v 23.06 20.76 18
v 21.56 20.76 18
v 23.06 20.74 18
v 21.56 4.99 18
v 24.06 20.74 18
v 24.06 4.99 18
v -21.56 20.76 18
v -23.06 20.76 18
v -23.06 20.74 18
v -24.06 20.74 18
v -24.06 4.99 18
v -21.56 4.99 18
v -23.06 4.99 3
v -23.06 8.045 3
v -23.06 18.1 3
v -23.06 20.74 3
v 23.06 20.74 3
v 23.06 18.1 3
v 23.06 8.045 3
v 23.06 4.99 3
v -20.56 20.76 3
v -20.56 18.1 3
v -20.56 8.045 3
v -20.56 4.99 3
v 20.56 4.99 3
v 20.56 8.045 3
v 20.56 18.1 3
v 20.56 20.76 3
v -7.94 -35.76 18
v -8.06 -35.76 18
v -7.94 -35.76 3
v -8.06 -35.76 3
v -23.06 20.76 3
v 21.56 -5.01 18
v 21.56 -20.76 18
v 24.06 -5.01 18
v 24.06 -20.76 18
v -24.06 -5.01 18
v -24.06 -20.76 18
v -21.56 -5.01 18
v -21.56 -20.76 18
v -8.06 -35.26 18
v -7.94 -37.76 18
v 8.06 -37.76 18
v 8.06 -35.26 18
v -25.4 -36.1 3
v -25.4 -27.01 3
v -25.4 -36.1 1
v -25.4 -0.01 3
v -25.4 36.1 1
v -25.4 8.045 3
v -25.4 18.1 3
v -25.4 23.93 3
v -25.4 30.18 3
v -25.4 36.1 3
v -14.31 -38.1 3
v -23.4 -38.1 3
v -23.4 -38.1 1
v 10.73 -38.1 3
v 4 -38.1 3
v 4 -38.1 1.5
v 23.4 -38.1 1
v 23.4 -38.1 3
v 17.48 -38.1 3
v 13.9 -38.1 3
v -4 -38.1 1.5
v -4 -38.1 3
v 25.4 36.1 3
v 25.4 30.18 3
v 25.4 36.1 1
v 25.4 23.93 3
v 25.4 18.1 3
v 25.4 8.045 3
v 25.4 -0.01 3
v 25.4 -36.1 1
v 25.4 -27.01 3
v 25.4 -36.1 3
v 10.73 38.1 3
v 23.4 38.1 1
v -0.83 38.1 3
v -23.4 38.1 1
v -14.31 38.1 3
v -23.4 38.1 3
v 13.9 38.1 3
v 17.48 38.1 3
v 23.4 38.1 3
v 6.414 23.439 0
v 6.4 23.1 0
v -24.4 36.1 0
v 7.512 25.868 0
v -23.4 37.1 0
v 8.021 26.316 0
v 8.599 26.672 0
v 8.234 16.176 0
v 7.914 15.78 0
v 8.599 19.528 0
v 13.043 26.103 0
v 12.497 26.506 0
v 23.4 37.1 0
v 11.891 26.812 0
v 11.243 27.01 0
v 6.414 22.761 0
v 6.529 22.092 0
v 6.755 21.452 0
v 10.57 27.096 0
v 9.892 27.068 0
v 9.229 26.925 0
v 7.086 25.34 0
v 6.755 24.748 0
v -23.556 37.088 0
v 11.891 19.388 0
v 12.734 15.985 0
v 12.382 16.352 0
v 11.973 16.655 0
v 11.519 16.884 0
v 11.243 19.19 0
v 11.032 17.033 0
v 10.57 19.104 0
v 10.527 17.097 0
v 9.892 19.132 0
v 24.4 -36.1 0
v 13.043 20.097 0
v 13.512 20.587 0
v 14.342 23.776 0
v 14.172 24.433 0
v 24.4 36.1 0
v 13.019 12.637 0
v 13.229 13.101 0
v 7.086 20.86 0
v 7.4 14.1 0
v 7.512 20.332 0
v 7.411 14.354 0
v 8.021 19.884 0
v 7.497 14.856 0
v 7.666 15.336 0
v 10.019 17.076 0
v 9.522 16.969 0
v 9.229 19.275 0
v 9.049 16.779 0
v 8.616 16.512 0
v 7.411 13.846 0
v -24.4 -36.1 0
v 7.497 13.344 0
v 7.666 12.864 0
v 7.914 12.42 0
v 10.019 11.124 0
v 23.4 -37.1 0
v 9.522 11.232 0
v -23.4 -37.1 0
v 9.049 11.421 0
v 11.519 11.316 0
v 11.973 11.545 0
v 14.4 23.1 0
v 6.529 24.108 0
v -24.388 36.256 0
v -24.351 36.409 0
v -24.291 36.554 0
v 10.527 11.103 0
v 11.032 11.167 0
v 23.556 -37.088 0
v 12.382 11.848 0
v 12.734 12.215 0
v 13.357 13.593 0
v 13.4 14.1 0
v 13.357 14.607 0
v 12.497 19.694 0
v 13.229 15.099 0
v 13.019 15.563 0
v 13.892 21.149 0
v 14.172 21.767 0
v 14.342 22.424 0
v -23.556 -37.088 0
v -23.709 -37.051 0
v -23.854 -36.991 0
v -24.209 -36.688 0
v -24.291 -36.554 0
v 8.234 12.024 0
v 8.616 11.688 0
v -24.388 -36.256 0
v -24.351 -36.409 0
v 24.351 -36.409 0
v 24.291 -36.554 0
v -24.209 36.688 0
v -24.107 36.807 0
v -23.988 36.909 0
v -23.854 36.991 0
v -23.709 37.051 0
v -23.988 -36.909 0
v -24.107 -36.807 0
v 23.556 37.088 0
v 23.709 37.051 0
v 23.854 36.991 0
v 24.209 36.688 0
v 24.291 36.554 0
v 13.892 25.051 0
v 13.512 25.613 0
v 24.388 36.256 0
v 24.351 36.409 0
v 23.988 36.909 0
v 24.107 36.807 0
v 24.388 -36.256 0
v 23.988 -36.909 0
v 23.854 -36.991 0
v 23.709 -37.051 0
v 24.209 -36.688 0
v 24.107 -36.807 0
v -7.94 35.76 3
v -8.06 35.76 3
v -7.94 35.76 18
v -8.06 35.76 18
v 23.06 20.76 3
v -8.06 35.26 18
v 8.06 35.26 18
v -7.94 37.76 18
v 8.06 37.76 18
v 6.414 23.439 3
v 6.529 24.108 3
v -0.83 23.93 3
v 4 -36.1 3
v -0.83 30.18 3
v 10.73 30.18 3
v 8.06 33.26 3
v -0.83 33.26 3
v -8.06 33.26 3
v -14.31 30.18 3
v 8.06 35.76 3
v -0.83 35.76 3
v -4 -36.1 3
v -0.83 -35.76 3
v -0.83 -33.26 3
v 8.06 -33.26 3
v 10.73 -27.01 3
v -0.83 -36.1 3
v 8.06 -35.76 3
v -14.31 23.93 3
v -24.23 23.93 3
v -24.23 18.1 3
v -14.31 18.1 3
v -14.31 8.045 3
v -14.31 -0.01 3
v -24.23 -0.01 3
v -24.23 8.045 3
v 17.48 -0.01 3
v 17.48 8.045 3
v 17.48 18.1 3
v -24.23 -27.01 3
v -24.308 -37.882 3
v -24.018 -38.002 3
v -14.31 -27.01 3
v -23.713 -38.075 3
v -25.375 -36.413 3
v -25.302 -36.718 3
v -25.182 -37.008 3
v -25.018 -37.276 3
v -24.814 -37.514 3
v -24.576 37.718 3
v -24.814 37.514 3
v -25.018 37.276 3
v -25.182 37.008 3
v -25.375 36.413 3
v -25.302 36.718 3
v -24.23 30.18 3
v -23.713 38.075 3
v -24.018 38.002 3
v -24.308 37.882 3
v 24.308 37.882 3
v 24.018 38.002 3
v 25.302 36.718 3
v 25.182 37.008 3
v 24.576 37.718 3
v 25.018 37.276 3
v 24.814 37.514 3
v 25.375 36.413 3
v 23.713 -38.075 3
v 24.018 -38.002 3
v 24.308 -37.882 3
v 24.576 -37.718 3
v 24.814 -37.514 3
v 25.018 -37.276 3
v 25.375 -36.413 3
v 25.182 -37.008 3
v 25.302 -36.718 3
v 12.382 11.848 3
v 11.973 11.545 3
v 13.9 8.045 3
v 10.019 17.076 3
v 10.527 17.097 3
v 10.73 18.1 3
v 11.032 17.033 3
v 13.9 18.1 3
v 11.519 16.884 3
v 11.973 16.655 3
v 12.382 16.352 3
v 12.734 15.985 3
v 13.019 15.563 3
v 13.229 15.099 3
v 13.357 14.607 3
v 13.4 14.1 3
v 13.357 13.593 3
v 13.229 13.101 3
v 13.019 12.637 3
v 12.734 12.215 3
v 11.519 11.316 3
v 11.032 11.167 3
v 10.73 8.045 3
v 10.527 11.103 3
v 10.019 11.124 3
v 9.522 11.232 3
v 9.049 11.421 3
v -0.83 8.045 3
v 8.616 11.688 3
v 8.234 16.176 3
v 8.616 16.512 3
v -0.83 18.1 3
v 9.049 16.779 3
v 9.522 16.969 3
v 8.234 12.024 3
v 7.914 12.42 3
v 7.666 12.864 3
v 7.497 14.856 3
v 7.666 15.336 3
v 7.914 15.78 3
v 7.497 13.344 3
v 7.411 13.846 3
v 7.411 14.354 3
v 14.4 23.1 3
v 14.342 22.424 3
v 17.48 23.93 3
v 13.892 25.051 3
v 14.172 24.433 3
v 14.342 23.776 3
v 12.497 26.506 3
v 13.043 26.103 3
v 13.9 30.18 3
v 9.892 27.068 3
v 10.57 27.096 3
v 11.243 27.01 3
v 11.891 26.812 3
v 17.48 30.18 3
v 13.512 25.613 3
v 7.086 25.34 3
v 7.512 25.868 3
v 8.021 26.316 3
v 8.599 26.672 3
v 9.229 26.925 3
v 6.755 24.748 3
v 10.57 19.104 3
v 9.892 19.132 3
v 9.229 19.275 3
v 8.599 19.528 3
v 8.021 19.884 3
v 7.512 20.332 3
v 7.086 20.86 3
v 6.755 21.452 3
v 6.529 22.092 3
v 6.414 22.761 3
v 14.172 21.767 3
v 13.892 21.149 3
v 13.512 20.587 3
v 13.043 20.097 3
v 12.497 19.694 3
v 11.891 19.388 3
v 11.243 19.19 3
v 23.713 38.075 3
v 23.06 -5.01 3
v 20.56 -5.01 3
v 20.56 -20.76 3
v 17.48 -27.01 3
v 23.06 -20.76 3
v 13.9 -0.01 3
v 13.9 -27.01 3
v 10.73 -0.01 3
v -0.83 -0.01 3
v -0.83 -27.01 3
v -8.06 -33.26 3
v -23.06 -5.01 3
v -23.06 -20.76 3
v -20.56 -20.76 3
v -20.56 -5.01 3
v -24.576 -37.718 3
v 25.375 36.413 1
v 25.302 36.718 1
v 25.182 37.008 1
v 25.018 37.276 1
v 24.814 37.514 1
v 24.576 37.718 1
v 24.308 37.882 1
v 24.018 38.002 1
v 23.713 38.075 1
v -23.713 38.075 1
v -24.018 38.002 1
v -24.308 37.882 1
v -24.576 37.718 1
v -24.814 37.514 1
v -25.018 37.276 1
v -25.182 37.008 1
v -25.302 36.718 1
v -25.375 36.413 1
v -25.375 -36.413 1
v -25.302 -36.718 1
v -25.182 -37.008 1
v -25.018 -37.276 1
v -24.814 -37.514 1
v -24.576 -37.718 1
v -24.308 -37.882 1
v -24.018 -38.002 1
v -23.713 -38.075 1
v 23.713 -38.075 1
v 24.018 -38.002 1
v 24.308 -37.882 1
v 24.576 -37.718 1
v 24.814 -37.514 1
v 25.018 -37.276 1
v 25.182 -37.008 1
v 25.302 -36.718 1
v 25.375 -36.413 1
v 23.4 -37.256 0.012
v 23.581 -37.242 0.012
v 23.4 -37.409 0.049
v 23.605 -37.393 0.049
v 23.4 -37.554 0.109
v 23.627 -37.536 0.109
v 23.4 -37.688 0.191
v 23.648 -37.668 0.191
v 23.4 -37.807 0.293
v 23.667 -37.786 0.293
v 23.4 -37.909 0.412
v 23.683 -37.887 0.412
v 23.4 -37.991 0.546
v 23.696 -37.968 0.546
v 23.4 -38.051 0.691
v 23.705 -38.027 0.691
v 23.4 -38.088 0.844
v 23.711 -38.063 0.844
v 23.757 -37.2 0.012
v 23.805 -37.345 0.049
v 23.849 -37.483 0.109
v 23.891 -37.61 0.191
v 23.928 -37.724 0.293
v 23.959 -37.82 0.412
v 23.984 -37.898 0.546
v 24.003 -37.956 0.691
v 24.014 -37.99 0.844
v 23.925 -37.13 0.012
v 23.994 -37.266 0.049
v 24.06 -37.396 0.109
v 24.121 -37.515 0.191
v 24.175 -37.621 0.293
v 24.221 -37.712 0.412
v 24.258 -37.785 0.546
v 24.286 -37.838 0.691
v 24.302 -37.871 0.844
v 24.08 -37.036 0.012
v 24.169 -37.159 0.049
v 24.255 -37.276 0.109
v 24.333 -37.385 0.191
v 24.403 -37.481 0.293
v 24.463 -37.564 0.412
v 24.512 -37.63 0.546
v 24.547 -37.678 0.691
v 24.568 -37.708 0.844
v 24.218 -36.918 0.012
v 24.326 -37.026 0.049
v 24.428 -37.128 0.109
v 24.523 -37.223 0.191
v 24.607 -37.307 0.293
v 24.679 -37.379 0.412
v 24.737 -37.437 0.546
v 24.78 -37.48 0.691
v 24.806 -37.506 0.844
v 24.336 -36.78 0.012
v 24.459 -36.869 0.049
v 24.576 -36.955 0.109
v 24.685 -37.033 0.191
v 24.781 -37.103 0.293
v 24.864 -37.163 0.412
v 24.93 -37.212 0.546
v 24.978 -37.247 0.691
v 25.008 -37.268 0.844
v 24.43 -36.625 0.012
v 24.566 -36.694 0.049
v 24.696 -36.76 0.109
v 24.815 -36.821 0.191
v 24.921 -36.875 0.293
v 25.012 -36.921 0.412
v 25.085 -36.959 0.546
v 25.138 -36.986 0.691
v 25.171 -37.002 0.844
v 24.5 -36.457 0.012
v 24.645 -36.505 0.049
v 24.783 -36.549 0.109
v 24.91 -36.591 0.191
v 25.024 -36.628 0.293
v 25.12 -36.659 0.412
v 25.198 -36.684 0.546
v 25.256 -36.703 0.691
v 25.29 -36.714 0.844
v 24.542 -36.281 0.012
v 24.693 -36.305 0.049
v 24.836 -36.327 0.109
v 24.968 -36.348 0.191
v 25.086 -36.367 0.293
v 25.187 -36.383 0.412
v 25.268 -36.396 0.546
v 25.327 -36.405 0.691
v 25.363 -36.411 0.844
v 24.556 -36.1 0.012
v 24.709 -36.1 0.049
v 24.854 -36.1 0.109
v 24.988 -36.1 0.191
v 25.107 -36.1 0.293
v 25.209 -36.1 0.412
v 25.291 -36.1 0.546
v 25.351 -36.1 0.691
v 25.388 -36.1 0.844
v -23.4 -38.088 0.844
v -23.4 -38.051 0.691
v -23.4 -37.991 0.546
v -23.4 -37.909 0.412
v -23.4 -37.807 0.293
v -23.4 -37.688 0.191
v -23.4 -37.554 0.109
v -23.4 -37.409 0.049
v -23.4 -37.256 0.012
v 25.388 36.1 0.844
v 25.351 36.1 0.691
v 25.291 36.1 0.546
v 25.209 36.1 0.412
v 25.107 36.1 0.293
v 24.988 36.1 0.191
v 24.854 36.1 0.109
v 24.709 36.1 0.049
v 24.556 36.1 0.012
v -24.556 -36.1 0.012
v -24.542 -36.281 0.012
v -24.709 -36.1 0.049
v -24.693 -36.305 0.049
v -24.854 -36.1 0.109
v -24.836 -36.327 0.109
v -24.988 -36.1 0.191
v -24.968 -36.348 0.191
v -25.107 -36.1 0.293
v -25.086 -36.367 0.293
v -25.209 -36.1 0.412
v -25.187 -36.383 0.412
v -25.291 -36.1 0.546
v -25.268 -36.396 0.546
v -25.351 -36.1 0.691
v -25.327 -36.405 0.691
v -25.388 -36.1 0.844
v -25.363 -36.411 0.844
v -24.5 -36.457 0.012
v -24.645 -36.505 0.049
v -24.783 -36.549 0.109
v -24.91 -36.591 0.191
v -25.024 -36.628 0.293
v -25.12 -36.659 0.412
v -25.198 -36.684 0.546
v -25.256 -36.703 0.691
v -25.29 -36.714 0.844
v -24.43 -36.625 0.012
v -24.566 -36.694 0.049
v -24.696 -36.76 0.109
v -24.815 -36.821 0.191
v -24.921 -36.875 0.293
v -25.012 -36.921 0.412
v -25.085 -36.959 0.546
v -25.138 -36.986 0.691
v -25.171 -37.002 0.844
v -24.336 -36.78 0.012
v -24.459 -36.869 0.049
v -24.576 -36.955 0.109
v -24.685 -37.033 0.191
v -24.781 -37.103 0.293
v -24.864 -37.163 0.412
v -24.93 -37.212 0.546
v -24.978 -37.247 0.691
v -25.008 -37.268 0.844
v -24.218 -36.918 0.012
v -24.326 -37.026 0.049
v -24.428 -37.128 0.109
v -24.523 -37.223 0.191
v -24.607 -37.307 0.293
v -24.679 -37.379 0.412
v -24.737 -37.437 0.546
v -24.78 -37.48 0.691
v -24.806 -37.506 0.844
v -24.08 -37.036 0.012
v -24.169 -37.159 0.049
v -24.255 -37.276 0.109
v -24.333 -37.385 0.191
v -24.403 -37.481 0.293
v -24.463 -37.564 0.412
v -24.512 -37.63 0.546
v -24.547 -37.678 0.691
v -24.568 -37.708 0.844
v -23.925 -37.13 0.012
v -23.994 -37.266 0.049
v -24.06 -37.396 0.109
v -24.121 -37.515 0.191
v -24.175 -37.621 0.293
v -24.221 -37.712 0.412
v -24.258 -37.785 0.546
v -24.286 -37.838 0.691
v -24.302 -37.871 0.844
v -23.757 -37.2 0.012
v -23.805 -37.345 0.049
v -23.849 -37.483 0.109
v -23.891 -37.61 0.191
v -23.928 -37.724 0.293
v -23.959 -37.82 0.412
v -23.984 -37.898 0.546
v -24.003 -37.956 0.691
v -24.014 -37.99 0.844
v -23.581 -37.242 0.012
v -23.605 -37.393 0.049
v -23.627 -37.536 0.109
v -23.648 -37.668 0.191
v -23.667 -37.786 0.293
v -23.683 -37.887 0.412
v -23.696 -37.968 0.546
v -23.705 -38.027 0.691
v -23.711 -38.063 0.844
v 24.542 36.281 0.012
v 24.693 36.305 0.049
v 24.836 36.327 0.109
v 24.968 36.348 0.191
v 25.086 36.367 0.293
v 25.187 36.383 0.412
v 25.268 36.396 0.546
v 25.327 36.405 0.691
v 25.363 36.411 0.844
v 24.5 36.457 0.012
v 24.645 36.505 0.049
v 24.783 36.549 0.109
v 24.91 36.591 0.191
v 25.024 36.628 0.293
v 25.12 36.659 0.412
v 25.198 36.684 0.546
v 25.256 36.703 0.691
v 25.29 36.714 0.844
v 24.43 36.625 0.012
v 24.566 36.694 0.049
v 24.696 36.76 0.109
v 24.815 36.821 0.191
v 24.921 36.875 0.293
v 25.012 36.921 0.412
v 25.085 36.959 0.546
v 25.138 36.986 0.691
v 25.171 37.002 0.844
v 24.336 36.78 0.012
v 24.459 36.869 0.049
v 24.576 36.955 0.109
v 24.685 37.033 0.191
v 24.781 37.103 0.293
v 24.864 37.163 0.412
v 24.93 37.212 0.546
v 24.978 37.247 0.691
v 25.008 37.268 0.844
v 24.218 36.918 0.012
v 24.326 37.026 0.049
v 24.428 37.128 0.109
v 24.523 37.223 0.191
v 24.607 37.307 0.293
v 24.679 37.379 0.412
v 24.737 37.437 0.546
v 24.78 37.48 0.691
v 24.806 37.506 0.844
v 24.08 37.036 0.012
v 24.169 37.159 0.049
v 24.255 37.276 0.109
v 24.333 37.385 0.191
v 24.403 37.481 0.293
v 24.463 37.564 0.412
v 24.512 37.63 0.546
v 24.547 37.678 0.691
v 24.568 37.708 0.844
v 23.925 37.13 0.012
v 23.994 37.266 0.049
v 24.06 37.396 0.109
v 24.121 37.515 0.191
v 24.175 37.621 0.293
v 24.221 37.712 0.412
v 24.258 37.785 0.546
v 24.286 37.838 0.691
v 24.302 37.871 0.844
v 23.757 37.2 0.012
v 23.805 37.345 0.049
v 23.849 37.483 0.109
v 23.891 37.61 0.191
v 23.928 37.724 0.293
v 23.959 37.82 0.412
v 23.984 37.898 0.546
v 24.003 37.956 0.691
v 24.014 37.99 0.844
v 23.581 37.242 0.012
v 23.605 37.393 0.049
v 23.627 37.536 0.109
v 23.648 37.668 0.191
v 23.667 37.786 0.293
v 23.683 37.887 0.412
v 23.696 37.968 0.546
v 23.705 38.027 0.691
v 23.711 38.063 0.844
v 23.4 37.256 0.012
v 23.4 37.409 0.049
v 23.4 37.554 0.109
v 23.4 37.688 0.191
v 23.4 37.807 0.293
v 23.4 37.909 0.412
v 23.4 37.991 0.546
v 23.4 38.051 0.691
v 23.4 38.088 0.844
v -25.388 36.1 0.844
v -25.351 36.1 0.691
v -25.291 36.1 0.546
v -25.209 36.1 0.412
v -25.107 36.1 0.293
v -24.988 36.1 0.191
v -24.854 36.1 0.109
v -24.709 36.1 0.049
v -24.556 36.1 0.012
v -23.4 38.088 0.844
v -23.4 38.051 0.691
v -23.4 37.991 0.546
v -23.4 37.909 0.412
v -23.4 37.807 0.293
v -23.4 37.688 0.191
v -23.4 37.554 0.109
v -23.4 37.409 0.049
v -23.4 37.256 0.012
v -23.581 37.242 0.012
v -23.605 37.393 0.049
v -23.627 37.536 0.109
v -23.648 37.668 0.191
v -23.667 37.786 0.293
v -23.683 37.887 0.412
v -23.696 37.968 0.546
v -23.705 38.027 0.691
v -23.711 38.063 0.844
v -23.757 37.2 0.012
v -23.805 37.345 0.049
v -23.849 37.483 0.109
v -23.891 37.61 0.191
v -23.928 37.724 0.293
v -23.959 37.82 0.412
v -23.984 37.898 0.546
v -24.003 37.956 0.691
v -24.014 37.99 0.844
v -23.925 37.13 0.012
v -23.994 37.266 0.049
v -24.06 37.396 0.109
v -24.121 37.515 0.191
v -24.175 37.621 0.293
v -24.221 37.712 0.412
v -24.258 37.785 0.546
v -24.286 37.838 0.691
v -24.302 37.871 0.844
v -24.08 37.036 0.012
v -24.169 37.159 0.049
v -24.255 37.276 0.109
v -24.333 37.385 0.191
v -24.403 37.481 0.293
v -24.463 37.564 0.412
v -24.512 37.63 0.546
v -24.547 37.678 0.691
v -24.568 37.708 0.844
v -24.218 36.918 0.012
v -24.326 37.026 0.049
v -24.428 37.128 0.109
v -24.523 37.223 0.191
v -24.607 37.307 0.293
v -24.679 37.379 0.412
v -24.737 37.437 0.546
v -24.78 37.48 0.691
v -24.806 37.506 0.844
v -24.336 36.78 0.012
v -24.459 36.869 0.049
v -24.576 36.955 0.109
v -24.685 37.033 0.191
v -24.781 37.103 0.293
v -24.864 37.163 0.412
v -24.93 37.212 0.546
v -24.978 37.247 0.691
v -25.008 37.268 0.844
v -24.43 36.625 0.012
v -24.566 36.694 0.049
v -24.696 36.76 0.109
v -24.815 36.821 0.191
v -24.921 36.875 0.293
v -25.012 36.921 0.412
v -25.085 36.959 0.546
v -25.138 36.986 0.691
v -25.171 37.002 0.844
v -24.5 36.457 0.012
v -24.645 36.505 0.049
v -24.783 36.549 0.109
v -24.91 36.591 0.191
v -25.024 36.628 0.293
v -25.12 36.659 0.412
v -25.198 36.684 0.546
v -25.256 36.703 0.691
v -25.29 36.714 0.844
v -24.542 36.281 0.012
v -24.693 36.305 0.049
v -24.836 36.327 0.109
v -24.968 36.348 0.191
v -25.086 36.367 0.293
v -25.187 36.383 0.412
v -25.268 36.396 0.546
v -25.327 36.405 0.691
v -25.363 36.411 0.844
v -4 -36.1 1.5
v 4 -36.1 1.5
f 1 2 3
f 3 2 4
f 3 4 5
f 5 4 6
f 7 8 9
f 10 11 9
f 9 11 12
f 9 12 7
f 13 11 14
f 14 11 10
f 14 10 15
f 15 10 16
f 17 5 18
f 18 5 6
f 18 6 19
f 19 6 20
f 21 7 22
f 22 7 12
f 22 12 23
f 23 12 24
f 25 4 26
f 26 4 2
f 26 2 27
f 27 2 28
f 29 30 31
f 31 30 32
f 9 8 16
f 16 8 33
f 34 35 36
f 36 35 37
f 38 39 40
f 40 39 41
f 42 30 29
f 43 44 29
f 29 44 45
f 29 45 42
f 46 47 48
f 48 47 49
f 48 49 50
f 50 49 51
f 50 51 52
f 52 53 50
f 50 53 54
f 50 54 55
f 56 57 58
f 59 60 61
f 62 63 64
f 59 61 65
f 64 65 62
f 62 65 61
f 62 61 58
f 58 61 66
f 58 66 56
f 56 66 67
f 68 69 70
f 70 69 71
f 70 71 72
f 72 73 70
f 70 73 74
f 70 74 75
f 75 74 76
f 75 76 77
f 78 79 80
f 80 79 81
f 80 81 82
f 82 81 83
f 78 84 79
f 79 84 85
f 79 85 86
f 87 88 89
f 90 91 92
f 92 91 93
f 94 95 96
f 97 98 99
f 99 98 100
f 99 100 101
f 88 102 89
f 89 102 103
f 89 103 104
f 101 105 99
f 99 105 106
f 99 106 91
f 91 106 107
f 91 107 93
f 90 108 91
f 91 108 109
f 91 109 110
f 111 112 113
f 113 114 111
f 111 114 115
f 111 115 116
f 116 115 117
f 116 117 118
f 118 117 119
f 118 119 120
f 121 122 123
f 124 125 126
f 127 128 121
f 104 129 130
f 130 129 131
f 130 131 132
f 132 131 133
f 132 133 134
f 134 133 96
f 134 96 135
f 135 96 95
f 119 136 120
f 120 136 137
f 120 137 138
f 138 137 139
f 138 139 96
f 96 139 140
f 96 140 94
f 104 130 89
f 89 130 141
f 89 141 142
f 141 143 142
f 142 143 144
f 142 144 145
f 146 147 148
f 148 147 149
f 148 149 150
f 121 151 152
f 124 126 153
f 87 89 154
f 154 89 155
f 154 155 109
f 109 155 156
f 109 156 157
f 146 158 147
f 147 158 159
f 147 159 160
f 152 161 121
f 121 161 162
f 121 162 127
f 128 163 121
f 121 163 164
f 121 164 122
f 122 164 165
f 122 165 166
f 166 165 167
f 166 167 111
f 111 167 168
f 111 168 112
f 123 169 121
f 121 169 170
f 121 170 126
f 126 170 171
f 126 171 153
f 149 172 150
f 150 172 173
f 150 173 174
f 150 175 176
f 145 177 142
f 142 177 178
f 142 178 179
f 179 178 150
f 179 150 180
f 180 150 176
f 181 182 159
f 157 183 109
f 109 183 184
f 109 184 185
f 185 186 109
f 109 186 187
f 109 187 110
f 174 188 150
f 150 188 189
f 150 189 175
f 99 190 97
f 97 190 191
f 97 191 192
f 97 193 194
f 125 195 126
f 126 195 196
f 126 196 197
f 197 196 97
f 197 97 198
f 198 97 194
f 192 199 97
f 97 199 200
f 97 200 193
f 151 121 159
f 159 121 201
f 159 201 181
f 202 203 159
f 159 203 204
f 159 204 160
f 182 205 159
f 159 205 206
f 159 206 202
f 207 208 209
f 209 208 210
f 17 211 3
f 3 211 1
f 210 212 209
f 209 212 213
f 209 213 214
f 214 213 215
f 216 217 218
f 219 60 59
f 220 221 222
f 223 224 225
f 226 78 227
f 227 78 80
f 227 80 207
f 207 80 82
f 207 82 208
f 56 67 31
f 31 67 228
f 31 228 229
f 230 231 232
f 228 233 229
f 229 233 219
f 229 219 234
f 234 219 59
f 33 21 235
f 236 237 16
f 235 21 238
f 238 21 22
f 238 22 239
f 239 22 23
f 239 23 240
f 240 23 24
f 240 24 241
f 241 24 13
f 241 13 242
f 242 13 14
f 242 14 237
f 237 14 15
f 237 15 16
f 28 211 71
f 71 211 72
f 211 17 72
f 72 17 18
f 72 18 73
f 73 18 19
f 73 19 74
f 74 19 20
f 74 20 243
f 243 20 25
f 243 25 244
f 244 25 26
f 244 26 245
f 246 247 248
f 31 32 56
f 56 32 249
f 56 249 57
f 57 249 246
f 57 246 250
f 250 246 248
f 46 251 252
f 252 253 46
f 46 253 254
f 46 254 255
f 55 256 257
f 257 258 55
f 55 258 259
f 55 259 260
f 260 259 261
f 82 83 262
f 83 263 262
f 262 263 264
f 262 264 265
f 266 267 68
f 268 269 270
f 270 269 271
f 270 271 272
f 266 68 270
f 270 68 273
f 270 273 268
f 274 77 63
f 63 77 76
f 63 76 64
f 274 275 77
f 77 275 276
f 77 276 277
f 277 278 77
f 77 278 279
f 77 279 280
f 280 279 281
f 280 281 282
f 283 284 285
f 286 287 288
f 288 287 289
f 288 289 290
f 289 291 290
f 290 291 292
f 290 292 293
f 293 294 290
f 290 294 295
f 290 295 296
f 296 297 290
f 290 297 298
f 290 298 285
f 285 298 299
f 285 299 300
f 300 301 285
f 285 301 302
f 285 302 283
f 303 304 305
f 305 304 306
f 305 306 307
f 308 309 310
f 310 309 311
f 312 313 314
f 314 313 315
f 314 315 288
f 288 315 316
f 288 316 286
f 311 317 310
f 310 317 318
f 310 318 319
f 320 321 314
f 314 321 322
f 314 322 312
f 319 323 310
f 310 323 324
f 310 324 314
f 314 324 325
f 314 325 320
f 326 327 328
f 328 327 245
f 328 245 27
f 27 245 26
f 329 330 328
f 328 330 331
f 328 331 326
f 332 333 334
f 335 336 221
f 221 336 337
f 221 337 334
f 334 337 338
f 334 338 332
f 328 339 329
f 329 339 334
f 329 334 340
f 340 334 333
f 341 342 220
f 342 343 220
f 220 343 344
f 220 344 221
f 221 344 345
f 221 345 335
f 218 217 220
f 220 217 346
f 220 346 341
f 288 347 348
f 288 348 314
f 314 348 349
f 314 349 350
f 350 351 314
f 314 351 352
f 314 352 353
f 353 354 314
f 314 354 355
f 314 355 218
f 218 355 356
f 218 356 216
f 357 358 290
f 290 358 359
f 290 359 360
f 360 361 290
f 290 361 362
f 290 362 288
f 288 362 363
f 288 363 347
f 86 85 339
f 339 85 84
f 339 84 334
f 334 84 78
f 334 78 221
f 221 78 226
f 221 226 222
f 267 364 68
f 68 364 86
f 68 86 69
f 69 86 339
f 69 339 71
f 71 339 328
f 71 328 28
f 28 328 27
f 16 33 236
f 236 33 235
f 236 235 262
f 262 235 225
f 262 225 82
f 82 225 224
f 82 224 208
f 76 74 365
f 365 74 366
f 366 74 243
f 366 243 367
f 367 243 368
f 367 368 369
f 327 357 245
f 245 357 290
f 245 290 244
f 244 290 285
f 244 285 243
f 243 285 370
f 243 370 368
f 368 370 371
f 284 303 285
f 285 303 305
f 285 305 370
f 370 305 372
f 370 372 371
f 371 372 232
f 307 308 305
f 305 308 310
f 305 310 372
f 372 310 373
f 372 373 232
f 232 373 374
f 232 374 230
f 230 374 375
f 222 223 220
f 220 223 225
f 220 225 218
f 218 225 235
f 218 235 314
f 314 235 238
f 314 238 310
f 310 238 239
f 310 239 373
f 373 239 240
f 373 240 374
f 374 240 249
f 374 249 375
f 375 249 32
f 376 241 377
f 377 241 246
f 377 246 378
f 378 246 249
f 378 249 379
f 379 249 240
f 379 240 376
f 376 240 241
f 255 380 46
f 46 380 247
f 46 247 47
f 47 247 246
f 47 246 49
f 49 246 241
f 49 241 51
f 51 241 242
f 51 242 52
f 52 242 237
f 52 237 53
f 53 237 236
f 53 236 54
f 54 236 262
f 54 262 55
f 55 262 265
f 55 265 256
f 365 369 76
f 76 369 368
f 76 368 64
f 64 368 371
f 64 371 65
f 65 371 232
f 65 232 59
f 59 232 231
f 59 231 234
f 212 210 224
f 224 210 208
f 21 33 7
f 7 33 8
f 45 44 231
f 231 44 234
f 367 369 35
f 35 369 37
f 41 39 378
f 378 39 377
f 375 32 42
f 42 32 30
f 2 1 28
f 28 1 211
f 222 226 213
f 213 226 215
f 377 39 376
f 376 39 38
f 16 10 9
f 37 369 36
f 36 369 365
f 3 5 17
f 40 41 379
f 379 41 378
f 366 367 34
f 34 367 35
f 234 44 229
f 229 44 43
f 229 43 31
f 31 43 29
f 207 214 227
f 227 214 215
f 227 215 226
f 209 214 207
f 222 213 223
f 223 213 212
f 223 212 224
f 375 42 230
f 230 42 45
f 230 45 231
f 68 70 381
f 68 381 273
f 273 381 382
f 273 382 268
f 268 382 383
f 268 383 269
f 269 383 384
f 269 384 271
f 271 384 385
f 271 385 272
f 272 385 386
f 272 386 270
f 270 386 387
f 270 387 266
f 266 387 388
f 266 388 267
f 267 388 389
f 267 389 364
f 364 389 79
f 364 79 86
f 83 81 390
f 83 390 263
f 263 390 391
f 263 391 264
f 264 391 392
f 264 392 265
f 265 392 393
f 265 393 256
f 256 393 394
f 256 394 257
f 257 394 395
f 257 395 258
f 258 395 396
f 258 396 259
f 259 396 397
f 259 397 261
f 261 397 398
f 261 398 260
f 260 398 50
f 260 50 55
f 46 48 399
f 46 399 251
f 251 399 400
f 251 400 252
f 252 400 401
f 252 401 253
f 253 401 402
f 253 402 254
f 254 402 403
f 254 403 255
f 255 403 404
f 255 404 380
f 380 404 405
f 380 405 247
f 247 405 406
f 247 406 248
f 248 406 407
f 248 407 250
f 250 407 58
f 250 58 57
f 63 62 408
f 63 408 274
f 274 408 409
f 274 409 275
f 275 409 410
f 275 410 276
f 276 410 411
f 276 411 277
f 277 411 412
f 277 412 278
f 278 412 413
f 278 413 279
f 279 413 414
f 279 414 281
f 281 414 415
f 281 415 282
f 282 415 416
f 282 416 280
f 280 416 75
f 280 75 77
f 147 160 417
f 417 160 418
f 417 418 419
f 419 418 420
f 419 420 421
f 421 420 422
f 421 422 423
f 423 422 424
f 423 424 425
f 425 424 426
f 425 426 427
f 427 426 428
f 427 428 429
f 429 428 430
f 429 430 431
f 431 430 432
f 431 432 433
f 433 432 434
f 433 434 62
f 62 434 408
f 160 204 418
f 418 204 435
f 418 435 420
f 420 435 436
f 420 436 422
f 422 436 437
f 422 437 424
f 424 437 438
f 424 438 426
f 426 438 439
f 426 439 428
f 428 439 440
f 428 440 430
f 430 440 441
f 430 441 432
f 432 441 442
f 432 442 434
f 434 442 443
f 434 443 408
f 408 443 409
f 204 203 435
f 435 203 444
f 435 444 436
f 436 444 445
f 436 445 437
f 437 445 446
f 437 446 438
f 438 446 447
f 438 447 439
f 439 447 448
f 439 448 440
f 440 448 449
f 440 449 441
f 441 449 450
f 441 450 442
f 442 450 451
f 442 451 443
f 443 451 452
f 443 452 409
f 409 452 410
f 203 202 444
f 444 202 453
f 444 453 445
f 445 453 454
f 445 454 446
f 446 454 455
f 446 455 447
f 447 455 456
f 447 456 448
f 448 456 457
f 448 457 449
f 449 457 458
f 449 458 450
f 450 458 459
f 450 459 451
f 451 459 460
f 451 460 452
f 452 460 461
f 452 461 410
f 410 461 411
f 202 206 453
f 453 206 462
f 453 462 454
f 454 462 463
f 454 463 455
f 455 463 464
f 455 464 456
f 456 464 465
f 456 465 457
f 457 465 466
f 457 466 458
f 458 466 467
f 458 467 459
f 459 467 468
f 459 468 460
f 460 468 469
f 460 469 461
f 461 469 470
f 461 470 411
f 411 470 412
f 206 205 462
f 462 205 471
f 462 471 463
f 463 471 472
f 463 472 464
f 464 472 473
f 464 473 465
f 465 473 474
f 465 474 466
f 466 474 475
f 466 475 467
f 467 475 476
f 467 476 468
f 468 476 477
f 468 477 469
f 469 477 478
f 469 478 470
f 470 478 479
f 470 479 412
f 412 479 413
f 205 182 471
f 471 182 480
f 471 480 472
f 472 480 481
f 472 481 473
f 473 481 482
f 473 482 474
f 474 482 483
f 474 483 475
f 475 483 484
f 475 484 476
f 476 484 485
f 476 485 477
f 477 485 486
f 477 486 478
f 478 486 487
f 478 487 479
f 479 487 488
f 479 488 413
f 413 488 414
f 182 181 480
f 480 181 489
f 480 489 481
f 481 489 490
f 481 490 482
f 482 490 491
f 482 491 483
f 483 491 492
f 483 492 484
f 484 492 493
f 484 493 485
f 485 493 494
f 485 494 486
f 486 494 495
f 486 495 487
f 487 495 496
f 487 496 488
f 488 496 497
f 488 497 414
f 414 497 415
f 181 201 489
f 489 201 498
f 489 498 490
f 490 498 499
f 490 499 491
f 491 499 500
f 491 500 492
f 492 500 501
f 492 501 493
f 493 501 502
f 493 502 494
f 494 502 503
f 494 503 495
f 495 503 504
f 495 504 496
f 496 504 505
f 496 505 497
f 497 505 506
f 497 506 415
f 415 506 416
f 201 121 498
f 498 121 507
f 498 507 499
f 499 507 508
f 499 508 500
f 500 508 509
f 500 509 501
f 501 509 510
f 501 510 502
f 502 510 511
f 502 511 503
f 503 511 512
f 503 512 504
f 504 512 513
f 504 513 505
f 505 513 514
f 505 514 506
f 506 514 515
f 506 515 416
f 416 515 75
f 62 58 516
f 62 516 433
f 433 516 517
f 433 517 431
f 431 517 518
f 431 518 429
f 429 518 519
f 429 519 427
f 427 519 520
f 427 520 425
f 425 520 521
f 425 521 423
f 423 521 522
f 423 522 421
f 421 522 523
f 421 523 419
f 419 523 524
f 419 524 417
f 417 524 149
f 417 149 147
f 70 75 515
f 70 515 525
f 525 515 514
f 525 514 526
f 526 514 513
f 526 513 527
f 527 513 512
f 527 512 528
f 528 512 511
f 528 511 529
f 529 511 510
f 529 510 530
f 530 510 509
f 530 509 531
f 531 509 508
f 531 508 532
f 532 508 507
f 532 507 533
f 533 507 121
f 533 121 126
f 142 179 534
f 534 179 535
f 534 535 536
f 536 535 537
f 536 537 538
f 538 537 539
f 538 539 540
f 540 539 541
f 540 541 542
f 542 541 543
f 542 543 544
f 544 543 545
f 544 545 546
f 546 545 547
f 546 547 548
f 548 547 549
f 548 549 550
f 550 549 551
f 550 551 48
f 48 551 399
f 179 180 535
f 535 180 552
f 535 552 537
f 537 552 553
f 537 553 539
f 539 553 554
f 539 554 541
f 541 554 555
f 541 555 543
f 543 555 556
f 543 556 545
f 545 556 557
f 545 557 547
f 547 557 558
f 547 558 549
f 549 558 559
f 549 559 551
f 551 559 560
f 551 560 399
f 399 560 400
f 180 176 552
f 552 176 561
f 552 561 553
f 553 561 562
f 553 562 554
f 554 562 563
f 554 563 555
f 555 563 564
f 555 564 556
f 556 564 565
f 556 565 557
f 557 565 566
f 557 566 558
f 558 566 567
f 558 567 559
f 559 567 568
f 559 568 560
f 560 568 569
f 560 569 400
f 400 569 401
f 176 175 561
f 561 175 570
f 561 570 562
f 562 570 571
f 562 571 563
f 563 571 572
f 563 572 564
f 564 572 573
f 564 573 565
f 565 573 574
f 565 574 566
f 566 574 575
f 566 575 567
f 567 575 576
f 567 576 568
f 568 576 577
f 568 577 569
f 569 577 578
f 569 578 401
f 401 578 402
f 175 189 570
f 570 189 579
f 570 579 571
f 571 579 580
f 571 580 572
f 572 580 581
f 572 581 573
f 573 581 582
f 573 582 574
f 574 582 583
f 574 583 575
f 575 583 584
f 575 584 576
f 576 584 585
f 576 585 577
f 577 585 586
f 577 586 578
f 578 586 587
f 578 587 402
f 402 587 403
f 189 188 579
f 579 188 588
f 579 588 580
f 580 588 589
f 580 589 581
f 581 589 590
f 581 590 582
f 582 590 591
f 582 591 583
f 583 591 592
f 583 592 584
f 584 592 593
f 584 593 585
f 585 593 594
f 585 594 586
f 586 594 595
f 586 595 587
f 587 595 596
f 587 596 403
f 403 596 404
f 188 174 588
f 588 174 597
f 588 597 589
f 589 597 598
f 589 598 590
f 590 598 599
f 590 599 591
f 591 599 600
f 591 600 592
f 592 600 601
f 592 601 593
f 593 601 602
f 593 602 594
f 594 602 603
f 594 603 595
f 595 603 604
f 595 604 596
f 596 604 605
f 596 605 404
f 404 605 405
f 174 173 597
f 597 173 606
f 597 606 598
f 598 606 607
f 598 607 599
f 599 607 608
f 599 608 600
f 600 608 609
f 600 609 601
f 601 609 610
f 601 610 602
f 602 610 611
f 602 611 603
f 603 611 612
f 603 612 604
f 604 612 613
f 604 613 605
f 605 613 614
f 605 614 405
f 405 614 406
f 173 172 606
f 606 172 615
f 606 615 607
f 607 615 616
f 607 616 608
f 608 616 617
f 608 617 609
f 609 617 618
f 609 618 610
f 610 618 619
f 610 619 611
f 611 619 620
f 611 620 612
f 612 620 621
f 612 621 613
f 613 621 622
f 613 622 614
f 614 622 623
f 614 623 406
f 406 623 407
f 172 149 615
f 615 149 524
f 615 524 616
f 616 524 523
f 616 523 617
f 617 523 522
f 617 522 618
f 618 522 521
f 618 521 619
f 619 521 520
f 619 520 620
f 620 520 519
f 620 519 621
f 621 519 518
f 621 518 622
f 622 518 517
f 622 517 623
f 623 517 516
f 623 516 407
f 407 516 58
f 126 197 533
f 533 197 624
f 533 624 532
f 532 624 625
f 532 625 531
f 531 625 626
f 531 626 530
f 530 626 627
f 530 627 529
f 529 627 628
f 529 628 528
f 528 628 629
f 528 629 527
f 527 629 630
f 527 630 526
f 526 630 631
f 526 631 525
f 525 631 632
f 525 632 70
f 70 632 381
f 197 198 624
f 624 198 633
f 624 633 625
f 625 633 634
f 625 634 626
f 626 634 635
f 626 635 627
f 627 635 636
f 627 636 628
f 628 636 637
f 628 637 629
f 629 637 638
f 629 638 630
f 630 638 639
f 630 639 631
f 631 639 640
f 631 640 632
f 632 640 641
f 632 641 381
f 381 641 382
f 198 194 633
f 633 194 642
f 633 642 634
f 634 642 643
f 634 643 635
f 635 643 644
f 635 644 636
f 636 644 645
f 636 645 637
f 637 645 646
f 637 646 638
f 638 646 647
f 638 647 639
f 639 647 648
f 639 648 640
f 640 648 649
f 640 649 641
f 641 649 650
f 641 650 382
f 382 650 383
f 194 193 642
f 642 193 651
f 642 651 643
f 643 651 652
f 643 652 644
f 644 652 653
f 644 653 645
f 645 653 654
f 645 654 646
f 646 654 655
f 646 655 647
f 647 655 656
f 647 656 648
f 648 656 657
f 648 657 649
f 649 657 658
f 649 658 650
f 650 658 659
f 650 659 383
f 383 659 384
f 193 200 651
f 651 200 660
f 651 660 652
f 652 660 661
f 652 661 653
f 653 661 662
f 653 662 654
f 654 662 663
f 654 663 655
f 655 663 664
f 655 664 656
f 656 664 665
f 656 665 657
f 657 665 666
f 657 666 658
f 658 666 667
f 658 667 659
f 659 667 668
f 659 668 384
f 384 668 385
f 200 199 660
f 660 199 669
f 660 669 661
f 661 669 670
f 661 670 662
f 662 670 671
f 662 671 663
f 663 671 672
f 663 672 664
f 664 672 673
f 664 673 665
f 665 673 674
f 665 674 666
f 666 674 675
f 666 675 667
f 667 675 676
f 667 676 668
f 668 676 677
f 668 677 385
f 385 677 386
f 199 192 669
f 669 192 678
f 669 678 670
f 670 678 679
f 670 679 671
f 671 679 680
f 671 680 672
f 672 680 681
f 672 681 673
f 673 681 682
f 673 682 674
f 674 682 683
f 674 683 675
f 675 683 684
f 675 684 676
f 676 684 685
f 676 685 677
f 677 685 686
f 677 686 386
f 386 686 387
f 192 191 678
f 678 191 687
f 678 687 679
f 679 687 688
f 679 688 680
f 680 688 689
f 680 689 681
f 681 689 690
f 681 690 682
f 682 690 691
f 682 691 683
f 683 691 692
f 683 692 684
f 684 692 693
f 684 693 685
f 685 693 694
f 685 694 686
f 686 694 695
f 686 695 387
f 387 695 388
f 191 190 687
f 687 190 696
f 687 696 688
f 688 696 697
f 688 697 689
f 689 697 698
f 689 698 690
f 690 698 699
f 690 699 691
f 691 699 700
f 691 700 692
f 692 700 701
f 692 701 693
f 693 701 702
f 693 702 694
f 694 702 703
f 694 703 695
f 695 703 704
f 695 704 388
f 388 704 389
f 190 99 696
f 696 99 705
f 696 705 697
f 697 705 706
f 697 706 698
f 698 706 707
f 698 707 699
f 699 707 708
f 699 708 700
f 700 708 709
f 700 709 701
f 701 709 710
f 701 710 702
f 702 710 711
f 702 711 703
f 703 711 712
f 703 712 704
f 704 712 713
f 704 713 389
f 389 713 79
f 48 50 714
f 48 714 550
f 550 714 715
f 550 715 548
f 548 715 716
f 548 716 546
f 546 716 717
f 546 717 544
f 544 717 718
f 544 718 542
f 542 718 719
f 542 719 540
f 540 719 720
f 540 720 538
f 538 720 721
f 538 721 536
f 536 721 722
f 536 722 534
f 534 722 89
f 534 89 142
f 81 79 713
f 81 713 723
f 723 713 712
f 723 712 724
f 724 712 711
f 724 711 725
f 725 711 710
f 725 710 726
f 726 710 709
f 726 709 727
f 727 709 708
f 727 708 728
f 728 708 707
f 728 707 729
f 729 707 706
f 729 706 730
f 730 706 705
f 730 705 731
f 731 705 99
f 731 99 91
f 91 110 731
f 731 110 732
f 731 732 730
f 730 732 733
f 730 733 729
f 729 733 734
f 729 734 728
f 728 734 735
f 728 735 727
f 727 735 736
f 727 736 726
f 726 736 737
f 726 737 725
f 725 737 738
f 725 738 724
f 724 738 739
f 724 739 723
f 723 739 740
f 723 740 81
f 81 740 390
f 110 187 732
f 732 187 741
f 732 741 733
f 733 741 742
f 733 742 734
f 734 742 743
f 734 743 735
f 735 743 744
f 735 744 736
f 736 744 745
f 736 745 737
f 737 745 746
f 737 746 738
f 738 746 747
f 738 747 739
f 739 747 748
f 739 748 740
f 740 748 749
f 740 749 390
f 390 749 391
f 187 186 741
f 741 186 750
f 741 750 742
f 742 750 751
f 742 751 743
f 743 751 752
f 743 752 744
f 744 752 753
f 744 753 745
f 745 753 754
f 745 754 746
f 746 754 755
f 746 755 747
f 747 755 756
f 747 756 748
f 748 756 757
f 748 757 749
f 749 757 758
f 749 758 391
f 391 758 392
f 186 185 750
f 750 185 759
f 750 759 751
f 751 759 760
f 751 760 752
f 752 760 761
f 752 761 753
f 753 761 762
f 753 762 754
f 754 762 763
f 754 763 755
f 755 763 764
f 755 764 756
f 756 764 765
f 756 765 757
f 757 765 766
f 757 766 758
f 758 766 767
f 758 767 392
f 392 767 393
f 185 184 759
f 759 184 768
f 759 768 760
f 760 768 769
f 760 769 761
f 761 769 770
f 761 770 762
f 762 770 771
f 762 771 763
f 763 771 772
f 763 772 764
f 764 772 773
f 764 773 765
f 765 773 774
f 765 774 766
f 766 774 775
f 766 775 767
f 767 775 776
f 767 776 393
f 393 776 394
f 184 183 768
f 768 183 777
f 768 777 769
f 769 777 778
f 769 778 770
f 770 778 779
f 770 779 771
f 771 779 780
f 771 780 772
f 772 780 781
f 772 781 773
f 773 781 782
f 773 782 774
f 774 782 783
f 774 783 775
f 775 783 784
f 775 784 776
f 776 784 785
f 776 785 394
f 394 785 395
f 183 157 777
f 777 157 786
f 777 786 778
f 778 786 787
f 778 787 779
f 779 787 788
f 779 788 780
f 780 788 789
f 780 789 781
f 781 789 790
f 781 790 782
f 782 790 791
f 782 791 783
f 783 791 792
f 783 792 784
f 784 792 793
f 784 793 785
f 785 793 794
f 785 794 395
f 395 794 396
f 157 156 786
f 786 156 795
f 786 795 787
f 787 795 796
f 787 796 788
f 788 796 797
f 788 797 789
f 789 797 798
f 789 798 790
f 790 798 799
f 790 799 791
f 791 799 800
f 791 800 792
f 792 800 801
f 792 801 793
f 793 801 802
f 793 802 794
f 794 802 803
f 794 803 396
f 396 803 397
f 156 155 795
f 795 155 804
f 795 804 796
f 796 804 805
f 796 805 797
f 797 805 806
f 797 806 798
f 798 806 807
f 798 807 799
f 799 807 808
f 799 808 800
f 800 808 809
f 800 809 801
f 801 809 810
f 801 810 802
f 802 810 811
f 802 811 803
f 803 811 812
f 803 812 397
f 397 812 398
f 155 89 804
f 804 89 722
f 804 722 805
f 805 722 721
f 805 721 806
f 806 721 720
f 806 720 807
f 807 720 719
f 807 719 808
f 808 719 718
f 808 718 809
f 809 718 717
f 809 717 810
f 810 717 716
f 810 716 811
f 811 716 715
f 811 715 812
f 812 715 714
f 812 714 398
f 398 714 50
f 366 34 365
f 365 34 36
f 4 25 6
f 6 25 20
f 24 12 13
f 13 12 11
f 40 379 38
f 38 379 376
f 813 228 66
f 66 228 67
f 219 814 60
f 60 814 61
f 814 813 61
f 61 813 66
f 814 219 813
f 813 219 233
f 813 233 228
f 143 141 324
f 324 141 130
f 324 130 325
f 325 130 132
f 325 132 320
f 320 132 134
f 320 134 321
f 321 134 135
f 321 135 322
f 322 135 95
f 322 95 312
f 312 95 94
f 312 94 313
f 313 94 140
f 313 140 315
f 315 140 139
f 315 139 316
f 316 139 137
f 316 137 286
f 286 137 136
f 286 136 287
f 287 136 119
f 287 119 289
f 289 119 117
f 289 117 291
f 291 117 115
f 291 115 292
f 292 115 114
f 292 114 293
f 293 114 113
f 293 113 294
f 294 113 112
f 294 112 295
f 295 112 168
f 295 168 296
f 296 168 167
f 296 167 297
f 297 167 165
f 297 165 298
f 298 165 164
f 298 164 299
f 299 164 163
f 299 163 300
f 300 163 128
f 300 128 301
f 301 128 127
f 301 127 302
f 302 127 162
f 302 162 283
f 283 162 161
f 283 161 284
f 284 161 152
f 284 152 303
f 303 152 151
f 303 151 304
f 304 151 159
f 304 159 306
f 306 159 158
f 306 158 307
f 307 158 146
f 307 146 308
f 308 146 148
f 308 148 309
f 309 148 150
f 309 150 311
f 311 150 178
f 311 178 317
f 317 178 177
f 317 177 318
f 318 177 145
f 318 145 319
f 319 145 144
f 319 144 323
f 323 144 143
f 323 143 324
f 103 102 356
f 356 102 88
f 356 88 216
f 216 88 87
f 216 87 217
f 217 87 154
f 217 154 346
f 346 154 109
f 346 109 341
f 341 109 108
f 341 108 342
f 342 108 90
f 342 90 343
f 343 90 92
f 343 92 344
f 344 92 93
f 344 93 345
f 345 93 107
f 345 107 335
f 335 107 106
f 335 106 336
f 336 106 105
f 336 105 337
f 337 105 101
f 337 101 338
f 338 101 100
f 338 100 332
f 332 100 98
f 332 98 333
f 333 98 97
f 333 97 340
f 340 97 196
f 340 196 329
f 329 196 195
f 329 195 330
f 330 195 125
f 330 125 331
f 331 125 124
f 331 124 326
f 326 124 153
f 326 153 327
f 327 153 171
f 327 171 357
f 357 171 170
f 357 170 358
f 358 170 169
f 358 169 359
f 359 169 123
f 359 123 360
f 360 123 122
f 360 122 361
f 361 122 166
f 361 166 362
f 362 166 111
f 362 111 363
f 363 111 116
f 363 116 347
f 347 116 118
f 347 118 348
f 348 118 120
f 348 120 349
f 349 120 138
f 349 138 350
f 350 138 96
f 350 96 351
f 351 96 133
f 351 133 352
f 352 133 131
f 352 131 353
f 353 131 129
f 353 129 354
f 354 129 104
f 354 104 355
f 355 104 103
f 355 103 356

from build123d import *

# Parameters (mm, degrees)
CROQUIS1_W              = 50.8
CROQUIS1_H              = 76.2
SALIENTE_EXTRUIR1_DEPTH = 18
CROQUIS2_W              = 50.8
CROQUIS2_H              = 76.2
CROQUIS2_W_2            = 46.12
CROQUIS2_H_2            = 71.52
CROQUIS2_W_3            = 38.8
CROQUIS2_H_3            = 64.2
CORTAR_EXTRUIR1_DEPTH   = 15
CORTAR_EXTRUIR8_DEPTH   = 15
SALIENTE_EXTRUIR3_DEPTH = 41.5
CORTAR_EXTRUIR9_DEPTH   = 51.5
CORTAR_EXTRUIR10_DEPTH  = 51.5
SALIENTE_EXTRUIR4_DEPTH = 16
CORTAR_EXTRUIR11_DEPTH  = 16.5
REDONDEO3_R             = 2
REDONDEO4_R             = 1
CROQUIS15_W             = 48.12
CROQUIS15_H             = 10
CORTAR_EXTRUIR12_DEPTH  = 15
CROQUIS16_W             = 8
CROQUIS16_H             = 1.5
CORTAR_EXTRUIR13_DEPTH  = 2
CROQUIS17_R             = 4
CROQUIS17_R_2           = 3
CORTAR_EXTRUIR14_DEPTH  = 10


with BuildPart() as part:
    # Croquis1 → Saliente-Extruir1 (new body)
    with BuildSketch(Plane.XY):
        Rectangle(CROQUIS1_W, CROQUIS1_H)
    extrude(amount=SALIENTE_EXTRUIR1_DEPTH)

    # Croquis2 → Cortar-Extruir1 (cut)
    # profile 1 of 2: a face of its own
    with BuildSketch(Plane.XY.offset(18)):
        Rectangle(CROQUIS2_W, CROQUIS2_H)
        Rectangle(CROQUIS2_W_2, CROQUIS2_H_2, mode=Mode.SUBTRACT)
    # profile 2 of 2: a face of its own
    with BuildSketch(Plane.XY.offset(18)):
        Rectangle(CROQUIS2_W_3, CROQUIS2_H_3)
    extrude(amount=-CORTAR_EXTRUIR1_DEPTH, mode=Mode.SUBTRACT)

    # Croquis6 → Cortar-Extruir8 (cut)
    with BuildSketch(Plane.XY.offset(18)):
        Polygon((-23.06, 35.76), (-8.06, 35.76), (-8.06, 32.1), (-19.4, 32.1), (-19.4, 20.76), (-23.06, 20.76), align=None)
        Polygon((23.06, 35.76), (8.06, 35.76), (8.06, 32.1), (19.4, 32.1), (19.4, 20.76), (23.06, 20.76), align=None)
        Polygon((-23.06, -35.76), (-23.06, -20.76), (-19.4, -20.76), (-19.4, -32.1), (-8.06, -32.1), (-8.06, -35.76), align=None)
        Polygon((23.06, -35.76), (8.06, -35.76), (8.06, -32.1), (19.4, -32.1), (19.4, -20.76), (23.06, -20.76), align=None)
    extrude(amount=-CORTAR_EXTRUIR8_DEPTH, mode=Mode.SUBTRACT)

    # Croquis10 → Saliente-Extruir3 (add)
    with BuildSketch(Plane(origin=(0, -20.76, 0), x_dir=(-1, 0, 0), z_dir=(0, -1, 0))):
        Polygon((23.06, -18), (24.06, -18), (23.06, -3), align=None)
        Polygon((-23.06, -18), (-24.06, -18), (-23.06, -3), align=None)
    extrude(amount=-SALIENTE_EXTRUIR3_DEPTH)

    # Croquis11 → Cortar-Extruir9 (cut)
    with BuildSketch(Plane.XZ.offset(20.76)):
        Polygon((-19.4, 18), (-21.56, 18), (-20.56, 3), (-19.4, 3), align=None)
    extrude(amount=-CORTAR_EXTRUIR9_DEPTH, mode=Mode.SUBTRACT)

    # Croquis12 → Cortar-Extruir10 (cut)
    with BuildSketch(Plane.XZ.offset(20.76)):
        Polygon((19.4, 18), (19.4, 3), (20.56, 3), (21.56, 18), align=None)
    extrude(amount=-CORTAR_EXTRUIR10_DEPTH, mode=Mode.SUBTRACT)

    # Croquis13 → Saliente-Extruir4 (add)
    with BuildSketch(Plane(origin=(8.06, 0, 0), x_dir=(0, 0, -1), z_dir=(1, 0, 0))):
        Polygon((-18, -35.76), (-18, -37.76), (-3, -35.76), align=None)
        Polygon((-18, 35.76), (-18, 37.76), (-3, 35.76), align=None)
    extrude(amount=-SALIENTE_EXTRUIR4_DEPTH)

    # Croquis14 → Cortar-Extruir11 (cut)
    with BuildSketch(Plane(origin=(8.06, 0, 0), x_dir=(0, 0, -1), z_dir=(1, 0, 0))):
        Polygon((-3, -32.1), (-18, -32.1), (-18, -35.26), (-3, -33.26), align=None)
        Polygon((-18, 32.1), (-18, 35.26), (-3, 33.26), (-3, 32.1), align=None)
    extrude(amount=-CORTAR_EXTRUIR11_DEPTH, mode=Mode.SUBTRACT)

    # Redondeo3
    redondeo3_edges = [part.edges().sort_by_distance(p)[0] for p in [
        (-25.4, 38.1, 1.5),
        (25.4, 38.1, 1.5),
        (25.4, -38.1, 1.5),
        (-25.4, -38.1, 1.5),
    ]]
    fillet(redondeo3_edges, radius=REDONDEO3_R)

    # Redondeo4
    redondeo4_edges = [part.edges().sort_by_distance(p)[0] for p in [
        (0, 38.1, 0),
        (-25.4, 0, 0),
        (25.4, 0, 0),
        (0, -38.1, 0),
        (24.814213562, -37.514213562, 0),
        (-24.814213562, -37.514213562, 0),
        (-24.814213562, 37.514213562, 0),
        (24.814213562, 37.514213562, 0),
    ]]
    fillet(redondeo4_edges, radius=REDONDEO4_R)

    # Croquis15 → Cortar-Extruir12 (cut)
    with BuildSketch(Plane.XY.offset(18)):
        with Locations((0, -0.01)):
            Rectangle(CROQUIS15_W, CROQUIS15_H)
    extrude(amount=-CORTAR_EXTRUIR12_DEPTH, mode=Mode.SUBTRACT)

    # Croquis16 → Cortar-Extruir13 (cut)
    with BuildSketch(Plane.XZ.offset(38.1)):
        with Locations((0, 2.25)):
            Rectangle(CROQUIS16_W, CROQUIS16_H)
    extrude(amount=-CORTAR_EXTRUIR13_DEPTH, mode=Mode.SUBTRACT)

    # Croquis17 → Cortar-Extruir14 (cut)
    with BuildSketch(Plane.XY.offset(3)):
        with Locations((10.4, 23.1)):
            Circle(CROQUIS17_R)
        with Locations((10.4, 14.1)):
            Circle(CROQUIS17_R_2)
    extrude(amount=-CORTAR_EXTRUIR14_DEPTH, mode=Mode.SUBTRACT)


solid = part.part
